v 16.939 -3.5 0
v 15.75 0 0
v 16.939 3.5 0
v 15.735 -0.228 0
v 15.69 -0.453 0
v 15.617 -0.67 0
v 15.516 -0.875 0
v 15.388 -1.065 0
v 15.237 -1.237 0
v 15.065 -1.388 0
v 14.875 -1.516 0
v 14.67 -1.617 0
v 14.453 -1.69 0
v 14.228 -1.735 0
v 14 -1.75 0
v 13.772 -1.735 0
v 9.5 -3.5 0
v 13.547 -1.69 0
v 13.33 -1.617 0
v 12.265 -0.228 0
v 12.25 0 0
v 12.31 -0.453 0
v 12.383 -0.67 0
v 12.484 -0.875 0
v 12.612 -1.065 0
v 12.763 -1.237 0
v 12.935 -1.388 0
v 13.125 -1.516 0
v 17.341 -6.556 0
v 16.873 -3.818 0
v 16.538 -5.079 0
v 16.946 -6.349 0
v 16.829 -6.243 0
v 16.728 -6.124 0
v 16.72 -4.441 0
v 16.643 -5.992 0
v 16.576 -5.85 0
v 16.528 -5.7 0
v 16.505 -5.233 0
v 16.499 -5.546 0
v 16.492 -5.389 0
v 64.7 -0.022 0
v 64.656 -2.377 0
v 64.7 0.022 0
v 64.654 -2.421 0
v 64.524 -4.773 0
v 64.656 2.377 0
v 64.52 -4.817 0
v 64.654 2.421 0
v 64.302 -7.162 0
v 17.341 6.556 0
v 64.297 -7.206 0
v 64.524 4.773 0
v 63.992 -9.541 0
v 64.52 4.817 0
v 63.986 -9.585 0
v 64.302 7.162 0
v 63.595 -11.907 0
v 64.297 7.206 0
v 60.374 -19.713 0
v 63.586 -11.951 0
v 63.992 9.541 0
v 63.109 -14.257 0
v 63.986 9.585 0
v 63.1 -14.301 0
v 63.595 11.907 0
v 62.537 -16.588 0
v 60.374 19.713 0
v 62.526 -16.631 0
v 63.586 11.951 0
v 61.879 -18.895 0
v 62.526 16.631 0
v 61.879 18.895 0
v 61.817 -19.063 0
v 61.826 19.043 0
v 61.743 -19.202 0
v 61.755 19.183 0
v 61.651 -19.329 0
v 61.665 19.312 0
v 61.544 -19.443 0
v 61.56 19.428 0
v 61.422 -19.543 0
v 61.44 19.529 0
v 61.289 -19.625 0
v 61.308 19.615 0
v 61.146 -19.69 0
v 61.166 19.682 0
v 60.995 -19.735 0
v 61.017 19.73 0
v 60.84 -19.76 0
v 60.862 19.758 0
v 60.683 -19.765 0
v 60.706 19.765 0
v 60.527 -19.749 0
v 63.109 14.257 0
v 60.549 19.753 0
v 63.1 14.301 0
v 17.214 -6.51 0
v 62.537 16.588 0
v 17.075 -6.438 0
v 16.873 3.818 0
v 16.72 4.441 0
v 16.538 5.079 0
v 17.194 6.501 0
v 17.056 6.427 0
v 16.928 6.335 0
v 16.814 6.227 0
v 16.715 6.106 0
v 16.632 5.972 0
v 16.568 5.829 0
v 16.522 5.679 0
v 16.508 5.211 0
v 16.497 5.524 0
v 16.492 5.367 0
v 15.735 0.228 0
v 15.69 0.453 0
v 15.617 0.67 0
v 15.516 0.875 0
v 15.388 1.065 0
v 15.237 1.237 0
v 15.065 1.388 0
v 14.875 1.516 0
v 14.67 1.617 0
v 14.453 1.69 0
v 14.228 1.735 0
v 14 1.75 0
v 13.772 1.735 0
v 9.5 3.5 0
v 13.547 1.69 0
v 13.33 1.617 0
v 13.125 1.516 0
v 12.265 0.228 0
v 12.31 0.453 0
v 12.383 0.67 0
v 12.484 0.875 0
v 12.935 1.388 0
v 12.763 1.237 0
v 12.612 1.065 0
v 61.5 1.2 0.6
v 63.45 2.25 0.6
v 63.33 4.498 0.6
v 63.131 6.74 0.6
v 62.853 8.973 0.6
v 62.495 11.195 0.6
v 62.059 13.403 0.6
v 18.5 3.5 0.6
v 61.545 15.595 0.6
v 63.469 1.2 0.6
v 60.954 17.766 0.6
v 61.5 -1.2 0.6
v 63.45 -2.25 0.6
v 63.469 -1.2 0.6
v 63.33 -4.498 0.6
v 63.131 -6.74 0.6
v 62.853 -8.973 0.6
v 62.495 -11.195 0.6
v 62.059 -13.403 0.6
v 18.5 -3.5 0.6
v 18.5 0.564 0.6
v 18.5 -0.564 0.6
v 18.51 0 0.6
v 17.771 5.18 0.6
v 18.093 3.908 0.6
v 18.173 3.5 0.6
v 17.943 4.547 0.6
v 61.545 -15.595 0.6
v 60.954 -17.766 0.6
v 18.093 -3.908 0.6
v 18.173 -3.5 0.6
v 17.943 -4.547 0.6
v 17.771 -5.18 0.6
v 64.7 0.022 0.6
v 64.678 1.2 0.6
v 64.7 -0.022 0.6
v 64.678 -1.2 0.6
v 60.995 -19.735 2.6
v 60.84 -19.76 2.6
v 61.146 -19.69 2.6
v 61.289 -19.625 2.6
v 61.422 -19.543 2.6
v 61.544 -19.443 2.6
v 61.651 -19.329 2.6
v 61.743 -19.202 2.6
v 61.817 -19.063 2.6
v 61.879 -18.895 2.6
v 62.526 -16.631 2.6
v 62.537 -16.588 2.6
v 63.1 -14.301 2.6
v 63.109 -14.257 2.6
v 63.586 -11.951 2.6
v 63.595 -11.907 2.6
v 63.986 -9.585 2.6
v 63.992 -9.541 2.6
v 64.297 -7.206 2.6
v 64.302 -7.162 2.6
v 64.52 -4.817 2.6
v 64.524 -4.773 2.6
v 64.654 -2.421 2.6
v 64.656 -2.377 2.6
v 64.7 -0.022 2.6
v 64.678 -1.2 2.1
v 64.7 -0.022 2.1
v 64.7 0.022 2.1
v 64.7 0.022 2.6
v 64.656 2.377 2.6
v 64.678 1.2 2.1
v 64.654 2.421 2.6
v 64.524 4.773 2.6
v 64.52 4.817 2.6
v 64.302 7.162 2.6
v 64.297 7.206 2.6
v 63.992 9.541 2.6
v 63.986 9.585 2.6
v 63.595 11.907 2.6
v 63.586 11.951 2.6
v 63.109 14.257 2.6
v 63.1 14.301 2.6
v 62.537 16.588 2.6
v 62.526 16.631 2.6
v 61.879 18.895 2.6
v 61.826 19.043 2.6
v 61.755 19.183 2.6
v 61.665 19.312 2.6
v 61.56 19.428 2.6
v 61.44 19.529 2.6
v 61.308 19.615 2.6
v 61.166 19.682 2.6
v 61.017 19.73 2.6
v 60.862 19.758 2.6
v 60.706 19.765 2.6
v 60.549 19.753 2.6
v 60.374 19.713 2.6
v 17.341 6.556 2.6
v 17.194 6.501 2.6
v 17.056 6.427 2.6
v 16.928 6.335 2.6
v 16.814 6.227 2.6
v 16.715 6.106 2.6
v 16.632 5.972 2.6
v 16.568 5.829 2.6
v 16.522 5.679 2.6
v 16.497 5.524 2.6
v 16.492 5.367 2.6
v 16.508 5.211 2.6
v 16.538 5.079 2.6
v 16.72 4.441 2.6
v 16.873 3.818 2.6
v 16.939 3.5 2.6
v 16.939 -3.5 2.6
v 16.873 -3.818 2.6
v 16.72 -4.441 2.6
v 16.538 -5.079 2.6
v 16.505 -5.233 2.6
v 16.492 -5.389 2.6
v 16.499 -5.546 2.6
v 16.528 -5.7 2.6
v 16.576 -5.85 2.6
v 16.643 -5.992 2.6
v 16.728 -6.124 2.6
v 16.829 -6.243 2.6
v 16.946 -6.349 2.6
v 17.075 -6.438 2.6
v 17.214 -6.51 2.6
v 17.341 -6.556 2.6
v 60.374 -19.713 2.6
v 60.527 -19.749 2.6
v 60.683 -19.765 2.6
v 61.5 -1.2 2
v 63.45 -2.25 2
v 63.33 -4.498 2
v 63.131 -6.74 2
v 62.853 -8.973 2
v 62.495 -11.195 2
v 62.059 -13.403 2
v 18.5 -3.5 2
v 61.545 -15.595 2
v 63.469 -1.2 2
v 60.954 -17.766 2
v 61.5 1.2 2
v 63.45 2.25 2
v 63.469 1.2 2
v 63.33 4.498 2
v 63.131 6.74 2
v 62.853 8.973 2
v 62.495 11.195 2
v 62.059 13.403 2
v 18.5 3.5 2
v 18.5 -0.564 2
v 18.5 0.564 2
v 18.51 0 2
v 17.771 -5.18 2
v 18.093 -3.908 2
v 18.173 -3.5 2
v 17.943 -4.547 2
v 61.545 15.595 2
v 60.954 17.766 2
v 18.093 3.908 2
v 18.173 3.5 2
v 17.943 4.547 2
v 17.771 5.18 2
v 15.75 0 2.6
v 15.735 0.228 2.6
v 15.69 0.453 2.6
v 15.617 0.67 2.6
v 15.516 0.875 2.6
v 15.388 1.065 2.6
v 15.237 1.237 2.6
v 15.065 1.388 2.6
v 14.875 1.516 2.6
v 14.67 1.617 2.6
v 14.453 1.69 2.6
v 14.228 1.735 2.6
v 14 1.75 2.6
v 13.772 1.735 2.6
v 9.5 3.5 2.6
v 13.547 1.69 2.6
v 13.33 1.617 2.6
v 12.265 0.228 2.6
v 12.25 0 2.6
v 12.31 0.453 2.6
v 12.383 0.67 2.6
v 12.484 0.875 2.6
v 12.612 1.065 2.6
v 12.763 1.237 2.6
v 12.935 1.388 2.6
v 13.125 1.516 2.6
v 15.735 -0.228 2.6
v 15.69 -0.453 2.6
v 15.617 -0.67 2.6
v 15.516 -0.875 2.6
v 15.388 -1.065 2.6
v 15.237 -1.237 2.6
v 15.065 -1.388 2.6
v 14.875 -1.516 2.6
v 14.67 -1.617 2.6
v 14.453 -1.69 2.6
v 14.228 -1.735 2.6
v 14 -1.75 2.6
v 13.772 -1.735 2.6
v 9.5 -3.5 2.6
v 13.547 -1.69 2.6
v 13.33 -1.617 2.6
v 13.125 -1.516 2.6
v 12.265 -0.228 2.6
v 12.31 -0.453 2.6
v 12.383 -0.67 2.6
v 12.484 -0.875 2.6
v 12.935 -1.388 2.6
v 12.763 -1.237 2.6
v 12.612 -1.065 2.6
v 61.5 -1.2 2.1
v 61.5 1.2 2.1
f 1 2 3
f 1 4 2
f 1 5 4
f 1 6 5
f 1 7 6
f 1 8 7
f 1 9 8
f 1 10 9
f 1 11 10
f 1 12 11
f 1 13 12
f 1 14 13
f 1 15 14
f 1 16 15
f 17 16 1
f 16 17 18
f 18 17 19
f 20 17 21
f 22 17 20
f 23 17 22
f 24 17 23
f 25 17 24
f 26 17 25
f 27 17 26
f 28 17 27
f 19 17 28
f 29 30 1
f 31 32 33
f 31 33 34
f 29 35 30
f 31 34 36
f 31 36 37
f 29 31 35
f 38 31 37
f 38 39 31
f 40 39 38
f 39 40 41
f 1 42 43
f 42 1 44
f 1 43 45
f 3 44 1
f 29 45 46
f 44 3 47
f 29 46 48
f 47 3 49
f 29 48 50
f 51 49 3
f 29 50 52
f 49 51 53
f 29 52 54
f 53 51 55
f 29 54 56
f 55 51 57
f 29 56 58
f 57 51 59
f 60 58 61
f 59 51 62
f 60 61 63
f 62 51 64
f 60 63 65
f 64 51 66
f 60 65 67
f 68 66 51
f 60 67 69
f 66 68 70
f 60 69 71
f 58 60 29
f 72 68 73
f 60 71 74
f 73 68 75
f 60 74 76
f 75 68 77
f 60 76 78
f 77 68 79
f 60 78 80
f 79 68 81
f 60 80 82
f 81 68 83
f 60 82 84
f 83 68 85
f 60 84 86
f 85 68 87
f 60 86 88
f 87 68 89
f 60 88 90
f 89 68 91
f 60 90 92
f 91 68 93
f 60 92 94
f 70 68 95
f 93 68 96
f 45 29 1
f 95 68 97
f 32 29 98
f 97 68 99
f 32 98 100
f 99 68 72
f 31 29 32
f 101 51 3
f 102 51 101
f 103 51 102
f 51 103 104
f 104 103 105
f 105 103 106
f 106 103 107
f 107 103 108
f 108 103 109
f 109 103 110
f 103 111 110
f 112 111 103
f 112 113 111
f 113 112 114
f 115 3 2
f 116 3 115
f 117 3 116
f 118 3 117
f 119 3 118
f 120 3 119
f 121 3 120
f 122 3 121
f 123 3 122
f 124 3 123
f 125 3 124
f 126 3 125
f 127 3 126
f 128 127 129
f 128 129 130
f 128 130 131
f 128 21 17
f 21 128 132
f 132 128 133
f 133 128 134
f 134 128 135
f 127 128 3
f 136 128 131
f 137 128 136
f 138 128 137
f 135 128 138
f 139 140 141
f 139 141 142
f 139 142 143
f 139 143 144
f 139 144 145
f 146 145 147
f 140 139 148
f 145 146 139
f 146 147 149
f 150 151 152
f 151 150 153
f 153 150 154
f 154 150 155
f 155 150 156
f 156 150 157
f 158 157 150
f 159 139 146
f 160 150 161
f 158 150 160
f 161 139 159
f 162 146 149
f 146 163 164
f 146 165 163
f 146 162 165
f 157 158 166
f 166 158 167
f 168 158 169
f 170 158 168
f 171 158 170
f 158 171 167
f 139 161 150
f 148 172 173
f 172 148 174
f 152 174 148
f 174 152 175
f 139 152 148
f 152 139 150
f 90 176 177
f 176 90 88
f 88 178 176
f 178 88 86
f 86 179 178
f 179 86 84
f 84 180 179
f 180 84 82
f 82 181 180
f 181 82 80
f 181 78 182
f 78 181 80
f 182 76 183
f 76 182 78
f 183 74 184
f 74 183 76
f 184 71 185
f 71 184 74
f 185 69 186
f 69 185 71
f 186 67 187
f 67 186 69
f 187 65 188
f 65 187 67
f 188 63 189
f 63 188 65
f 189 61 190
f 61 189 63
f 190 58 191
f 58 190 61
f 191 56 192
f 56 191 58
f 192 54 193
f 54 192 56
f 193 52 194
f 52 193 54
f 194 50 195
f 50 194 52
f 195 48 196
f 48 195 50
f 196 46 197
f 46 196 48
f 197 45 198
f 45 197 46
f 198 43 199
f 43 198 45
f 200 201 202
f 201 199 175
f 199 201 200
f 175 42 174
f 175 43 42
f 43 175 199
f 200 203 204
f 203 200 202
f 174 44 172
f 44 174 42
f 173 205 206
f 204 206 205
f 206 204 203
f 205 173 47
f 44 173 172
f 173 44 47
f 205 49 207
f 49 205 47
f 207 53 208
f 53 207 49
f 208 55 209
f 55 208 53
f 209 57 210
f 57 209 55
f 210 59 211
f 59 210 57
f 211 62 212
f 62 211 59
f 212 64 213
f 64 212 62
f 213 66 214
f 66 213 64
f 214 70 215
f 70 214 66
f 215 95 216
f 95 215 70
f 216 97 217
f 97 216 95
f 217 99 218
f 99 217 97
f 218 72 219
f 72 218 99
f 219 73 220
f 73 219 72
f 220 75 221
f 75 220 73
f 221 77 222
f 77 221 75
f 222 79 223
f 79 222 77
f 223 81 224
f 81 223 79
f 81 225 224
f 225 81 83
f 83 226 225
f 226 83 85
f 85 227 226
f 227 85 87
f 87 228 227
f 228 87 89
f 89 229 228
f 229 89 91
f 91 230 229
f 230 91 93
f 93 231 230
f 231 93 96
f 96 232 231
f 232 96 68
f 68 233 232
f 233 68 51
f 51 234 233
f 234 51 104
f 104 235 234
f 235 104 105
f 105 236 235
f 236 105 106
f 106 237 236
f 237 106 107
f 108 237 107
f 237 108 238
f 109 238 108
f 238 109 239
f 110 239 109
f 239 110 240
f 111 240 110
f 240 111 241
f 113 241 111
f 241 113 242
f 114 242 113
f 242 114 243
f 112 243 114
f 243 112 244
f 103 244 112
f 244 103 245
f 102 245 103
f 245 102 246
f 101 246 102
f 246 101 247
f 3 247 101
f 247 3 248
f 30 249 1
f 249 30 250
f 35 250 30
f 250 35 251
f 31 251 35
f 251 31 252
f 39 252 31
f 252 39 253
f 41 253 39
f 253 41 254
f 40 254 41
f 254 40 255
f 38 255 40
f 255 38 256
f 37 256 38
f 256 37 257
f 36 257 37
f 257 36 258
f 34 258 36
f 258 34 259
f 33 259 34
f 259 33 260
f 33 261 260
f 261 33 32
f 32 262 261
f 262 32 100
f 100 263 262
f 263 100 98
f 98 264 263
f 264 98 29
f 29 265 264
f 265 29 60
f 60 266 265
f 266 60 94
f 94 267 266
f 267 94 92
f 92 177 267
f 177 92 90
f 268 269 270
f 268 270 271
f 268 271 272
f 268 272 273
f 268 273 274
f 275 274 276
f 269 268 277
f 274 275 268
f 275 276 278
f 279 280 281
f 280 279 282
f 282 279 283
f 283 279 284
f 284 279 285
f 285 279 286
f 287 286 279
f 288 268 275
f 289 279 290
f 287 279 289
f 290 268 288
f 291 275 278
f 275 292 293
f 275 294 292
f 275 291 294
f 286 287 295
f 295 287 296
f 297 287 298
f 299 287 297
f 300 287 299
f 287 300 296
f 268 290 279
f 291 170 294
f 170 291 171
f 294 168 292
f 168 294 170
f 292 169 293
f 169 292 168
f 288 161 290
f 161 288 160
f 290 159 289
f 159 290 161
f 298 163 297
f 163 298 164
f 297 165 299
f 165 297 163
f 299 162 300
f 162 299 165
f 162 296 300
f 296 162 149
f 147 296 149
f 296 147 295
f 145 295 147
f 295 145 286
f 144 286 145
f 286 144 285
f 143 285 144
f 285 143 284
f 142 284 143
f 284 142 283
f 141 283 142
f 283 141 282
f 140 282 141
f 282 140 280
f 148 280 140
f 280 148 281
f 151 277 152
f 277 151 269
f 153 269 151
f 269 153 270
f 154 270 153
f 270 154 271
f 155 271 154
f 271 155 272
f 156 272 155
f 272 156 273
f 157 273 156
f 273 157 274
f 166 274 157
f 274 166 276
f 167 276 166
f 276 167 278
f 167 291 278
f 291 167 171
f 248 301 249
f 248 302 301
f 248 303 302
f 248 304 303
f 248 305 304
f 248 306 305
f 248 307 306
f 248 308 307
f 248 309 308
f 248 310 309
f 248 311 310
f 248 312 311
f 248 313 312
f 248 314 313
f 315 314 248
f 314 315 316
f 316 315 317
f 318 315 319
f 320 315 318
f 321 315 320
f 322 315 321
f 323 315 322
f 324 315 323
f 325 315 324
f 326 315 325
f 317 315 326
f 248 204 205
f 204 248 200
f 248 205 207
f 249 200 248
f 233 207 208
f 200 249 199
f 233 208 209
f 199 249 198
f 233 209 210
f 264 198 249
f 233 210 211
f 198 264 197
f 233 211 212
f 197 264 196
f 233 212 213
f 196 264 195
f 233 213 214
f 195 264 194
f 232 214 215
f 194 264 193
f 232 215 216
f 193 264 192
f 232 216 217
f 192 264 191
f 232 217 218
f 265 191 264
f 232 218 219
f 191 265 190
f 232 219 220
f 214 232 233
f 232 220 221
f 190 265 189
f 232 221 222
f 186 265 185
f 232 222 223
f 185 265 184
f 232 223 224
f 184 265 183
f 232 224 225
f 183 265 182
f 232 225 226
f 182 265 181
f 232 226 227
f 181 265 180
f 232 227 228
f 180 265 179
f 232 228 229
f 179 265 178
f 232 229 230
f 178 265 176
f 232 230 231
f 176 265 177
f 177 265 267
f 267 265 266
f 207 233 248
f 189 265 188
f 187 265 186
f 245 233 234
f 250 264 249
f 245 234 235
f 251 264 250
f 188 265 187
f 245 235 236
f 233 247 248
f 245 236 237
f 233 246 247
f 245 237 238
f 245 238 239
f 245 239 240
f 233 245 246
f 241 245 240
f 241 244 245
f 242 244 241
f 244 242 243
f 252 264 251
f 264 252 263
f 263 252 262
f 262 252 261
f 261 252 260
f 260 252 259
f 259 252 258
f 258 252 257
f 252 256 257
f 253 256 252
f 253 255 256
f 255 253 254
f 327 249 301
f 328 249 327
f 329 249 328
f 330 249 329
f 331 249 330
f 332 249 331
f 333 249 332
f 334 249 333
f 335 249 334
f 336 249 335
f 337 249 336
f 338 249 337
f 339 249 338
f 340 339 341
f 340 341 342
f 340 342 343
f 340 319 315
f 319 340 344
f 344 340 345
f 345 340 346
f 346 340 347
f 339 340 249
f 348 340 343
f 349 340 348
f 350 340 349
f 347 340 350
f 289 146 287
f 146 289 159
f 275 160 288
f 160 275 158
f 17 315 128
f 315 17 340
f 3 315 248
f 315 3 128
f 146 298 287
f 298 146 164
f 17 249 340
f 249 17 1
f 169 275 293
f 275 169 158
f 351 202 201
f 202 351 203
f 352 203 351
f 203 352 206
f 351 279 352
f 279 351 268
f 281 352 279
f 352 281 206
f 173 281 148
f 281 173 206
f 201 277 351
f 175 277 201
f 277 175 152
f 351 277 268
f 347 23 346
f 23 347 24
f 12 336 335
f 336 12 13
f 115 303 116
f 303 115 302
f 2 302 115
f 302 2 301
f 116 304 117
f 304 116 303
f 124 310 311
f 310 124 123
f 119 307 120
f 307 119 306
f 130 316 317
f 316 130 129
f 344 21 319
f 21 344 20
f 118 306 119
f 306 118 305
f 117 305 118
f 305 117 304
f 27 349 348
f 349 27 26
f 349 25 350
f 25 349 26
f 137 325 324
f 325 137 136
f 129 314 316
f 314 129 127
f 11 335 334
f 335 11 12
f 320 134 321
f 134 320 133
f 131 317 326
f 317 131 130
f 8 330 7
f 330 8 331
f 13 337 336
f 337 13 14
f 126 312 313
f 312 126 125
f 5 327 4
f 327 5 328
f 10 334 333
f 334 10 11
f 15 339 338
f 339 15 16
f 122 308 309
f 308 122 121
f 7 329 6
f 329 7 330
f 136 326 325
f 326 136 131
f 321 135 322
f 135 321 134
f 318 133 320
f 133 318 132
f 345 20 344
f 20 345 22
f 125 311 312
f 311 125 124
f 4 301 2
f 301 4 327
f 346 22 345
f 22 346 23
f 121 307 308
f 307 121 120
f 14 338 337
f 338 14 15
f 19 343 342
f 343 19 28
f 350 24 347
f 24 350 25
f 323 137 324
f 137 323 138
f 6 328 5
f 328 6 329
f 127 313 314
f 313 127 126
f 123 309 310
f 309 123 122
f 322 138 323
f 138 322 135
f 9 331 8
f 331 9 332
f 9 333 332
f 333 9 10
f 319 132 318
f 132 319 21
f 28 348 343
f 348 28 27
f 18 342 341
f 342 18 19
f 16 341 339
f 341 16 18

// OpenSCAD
// file: parameters.scad
// =============================================================================
// Gen-AL Stacked dual-stator mid-rotor copper-max plus — WOUND-AWARE (HARD GATE)
// ONE mid dual-face Halbach rotor | TWO wound pancake stators | 18 coils ×155 t
// =============================================================================

wire_awg            = 26;
wire_od             = 0.45;
turns               = 155;      // +10 vs Gen-AI 145; 18×155×~0.120 ≈ 335 m
fill                = 0.70;
layers_per_face     = 2;
wind_build_axial    = layers_per_face * wire_od * fill;   // 0.63
wind_build_radial   = 3 * wire_od * fill;                 // 0.945

coil_id_r           = 18.5;
coil_od_r           = 63.5;
span_deg            = 34.0;     // 9 stations × 40°
former_web          = 1.40;     // thinner vs AI 1.50
flange_t            = 0.60;
wall                = 1.2;
slot_w              = 2.4;
mount_hole          = 3.5;
tab_len             = 7.0;

former_bare_h       = former_web + 2 * flange_t;            // 2.60
coil_envelope_h     = former_bare_h + 2 * wind_build_axial; // 3.86

run_clear           = 0.50;     // tighter vs AI 0.52
gap_spacer_h        = run_clear + wind_build_axial;         // 1.13
m2m                 = coil_envelope_h + 2 * run_clear;      // 4.86 per gap

coil_stations       = 9;        // per stator; ×2 = 18 total
bay_r_in            = coil_id_r - 2.0 - wind_build_radial;
bay_r_out           = coil_od_r + 2.0 + wind_build_radial;
bay_span            = span_deg + 4.0;
bay_offset          = 2.0;
bay_depth           = former_bare_h + wind_build_axial;     // wound sits in bay
stator_back_web     = 2.0;
stator_thick        = bay_depth + stator_back_web;
stator_od           = 156.0;
shaft_clear_stator  = 38.0;
coil_mount_r        = 28.0;

large_pocket_d      = 20.3;
small_pocket_d      = 5.3;
pocket_h            = 5.2;
large_n             = 8;
R_large             = 41.0;     // tighter copper overlap vs AI R=42
R_small_inner       = 27.0;
R_small_mid         = 41.0;
R_small_outer       = 57.0;
carrier_od          = 154.0;
mid_carrier_thick   = 12.0;
hub_h               = 10.0;
hub_od              = 30.0;
rotor_b_offset_deg  = 22.5;

shaft_bore          = 8.35;
bearing_d           = 21.85;
bearing_h           = 7.2;
m3_clear            = 3.5;
bolt_r_inner        = 36.0;
bolt_n_inner        = 6;
flange_bolt_r       = 72.0;
flange_bolt_n       = 6;
brace_r             = 68.0;
brace_d             = 4.3;
brace_n             = 4;

spacer_pad_od       = 14.0;
spacer_pad_id       = m3_clear;
endbell_od          = 156.0;
endbell_thick       = 8.0;
endbell_shaft_clear = 10.0;

$fn = 64;
// main file
// Gen-AL pancake former — wind BEFORE assembly
include <parameters.scad>;
$fn = 48;

module sector_2d(r_in, r_out, ang) {
    polygon([
        for (a = [-ang/2 : ang/16 : ang/2]) [r_in*cos(a), r_in*sin(a)],
        for (a = [ang/2 : -ang/16 : -ang/2]) [r_out*cos(a), r_out*sin(a)]
    ]);
}
module flange() {
    linear_extrude(flange_t) offset(r=wall) sector_2d(coil_id_r, coil_od_r, span_deg);
}
difference() {
    union() {
        flange();
        translate([0, 0, flange_t])
            linear_extrude(former_web)
                difference() {
                    offset(r=wall) sector_2d(coil_id_r, coil_od_r, span_deg);
                    sector_2d(coil_id_r + 0.01, coil_od_r - 0.01, span_deg - 1.5);
                }
        translate([0, 0, flange_t + former_web]) flange();
        translate([coil_id_r - tab_len - 2, -3.5, 0])
            cube([tab_len + 2, 7, former_bare_h]);
    }
    translate([coil_od_r - 2, -slot_w/2, flange_t])
        cube([wall + 4, slot_w, former_web + 0.1]);
    translate([coil_id_r - tab_len/2 - 1, 0, -0.1])
        cylinder(d=mount_hole, h=former_bare_h + 1);
}
